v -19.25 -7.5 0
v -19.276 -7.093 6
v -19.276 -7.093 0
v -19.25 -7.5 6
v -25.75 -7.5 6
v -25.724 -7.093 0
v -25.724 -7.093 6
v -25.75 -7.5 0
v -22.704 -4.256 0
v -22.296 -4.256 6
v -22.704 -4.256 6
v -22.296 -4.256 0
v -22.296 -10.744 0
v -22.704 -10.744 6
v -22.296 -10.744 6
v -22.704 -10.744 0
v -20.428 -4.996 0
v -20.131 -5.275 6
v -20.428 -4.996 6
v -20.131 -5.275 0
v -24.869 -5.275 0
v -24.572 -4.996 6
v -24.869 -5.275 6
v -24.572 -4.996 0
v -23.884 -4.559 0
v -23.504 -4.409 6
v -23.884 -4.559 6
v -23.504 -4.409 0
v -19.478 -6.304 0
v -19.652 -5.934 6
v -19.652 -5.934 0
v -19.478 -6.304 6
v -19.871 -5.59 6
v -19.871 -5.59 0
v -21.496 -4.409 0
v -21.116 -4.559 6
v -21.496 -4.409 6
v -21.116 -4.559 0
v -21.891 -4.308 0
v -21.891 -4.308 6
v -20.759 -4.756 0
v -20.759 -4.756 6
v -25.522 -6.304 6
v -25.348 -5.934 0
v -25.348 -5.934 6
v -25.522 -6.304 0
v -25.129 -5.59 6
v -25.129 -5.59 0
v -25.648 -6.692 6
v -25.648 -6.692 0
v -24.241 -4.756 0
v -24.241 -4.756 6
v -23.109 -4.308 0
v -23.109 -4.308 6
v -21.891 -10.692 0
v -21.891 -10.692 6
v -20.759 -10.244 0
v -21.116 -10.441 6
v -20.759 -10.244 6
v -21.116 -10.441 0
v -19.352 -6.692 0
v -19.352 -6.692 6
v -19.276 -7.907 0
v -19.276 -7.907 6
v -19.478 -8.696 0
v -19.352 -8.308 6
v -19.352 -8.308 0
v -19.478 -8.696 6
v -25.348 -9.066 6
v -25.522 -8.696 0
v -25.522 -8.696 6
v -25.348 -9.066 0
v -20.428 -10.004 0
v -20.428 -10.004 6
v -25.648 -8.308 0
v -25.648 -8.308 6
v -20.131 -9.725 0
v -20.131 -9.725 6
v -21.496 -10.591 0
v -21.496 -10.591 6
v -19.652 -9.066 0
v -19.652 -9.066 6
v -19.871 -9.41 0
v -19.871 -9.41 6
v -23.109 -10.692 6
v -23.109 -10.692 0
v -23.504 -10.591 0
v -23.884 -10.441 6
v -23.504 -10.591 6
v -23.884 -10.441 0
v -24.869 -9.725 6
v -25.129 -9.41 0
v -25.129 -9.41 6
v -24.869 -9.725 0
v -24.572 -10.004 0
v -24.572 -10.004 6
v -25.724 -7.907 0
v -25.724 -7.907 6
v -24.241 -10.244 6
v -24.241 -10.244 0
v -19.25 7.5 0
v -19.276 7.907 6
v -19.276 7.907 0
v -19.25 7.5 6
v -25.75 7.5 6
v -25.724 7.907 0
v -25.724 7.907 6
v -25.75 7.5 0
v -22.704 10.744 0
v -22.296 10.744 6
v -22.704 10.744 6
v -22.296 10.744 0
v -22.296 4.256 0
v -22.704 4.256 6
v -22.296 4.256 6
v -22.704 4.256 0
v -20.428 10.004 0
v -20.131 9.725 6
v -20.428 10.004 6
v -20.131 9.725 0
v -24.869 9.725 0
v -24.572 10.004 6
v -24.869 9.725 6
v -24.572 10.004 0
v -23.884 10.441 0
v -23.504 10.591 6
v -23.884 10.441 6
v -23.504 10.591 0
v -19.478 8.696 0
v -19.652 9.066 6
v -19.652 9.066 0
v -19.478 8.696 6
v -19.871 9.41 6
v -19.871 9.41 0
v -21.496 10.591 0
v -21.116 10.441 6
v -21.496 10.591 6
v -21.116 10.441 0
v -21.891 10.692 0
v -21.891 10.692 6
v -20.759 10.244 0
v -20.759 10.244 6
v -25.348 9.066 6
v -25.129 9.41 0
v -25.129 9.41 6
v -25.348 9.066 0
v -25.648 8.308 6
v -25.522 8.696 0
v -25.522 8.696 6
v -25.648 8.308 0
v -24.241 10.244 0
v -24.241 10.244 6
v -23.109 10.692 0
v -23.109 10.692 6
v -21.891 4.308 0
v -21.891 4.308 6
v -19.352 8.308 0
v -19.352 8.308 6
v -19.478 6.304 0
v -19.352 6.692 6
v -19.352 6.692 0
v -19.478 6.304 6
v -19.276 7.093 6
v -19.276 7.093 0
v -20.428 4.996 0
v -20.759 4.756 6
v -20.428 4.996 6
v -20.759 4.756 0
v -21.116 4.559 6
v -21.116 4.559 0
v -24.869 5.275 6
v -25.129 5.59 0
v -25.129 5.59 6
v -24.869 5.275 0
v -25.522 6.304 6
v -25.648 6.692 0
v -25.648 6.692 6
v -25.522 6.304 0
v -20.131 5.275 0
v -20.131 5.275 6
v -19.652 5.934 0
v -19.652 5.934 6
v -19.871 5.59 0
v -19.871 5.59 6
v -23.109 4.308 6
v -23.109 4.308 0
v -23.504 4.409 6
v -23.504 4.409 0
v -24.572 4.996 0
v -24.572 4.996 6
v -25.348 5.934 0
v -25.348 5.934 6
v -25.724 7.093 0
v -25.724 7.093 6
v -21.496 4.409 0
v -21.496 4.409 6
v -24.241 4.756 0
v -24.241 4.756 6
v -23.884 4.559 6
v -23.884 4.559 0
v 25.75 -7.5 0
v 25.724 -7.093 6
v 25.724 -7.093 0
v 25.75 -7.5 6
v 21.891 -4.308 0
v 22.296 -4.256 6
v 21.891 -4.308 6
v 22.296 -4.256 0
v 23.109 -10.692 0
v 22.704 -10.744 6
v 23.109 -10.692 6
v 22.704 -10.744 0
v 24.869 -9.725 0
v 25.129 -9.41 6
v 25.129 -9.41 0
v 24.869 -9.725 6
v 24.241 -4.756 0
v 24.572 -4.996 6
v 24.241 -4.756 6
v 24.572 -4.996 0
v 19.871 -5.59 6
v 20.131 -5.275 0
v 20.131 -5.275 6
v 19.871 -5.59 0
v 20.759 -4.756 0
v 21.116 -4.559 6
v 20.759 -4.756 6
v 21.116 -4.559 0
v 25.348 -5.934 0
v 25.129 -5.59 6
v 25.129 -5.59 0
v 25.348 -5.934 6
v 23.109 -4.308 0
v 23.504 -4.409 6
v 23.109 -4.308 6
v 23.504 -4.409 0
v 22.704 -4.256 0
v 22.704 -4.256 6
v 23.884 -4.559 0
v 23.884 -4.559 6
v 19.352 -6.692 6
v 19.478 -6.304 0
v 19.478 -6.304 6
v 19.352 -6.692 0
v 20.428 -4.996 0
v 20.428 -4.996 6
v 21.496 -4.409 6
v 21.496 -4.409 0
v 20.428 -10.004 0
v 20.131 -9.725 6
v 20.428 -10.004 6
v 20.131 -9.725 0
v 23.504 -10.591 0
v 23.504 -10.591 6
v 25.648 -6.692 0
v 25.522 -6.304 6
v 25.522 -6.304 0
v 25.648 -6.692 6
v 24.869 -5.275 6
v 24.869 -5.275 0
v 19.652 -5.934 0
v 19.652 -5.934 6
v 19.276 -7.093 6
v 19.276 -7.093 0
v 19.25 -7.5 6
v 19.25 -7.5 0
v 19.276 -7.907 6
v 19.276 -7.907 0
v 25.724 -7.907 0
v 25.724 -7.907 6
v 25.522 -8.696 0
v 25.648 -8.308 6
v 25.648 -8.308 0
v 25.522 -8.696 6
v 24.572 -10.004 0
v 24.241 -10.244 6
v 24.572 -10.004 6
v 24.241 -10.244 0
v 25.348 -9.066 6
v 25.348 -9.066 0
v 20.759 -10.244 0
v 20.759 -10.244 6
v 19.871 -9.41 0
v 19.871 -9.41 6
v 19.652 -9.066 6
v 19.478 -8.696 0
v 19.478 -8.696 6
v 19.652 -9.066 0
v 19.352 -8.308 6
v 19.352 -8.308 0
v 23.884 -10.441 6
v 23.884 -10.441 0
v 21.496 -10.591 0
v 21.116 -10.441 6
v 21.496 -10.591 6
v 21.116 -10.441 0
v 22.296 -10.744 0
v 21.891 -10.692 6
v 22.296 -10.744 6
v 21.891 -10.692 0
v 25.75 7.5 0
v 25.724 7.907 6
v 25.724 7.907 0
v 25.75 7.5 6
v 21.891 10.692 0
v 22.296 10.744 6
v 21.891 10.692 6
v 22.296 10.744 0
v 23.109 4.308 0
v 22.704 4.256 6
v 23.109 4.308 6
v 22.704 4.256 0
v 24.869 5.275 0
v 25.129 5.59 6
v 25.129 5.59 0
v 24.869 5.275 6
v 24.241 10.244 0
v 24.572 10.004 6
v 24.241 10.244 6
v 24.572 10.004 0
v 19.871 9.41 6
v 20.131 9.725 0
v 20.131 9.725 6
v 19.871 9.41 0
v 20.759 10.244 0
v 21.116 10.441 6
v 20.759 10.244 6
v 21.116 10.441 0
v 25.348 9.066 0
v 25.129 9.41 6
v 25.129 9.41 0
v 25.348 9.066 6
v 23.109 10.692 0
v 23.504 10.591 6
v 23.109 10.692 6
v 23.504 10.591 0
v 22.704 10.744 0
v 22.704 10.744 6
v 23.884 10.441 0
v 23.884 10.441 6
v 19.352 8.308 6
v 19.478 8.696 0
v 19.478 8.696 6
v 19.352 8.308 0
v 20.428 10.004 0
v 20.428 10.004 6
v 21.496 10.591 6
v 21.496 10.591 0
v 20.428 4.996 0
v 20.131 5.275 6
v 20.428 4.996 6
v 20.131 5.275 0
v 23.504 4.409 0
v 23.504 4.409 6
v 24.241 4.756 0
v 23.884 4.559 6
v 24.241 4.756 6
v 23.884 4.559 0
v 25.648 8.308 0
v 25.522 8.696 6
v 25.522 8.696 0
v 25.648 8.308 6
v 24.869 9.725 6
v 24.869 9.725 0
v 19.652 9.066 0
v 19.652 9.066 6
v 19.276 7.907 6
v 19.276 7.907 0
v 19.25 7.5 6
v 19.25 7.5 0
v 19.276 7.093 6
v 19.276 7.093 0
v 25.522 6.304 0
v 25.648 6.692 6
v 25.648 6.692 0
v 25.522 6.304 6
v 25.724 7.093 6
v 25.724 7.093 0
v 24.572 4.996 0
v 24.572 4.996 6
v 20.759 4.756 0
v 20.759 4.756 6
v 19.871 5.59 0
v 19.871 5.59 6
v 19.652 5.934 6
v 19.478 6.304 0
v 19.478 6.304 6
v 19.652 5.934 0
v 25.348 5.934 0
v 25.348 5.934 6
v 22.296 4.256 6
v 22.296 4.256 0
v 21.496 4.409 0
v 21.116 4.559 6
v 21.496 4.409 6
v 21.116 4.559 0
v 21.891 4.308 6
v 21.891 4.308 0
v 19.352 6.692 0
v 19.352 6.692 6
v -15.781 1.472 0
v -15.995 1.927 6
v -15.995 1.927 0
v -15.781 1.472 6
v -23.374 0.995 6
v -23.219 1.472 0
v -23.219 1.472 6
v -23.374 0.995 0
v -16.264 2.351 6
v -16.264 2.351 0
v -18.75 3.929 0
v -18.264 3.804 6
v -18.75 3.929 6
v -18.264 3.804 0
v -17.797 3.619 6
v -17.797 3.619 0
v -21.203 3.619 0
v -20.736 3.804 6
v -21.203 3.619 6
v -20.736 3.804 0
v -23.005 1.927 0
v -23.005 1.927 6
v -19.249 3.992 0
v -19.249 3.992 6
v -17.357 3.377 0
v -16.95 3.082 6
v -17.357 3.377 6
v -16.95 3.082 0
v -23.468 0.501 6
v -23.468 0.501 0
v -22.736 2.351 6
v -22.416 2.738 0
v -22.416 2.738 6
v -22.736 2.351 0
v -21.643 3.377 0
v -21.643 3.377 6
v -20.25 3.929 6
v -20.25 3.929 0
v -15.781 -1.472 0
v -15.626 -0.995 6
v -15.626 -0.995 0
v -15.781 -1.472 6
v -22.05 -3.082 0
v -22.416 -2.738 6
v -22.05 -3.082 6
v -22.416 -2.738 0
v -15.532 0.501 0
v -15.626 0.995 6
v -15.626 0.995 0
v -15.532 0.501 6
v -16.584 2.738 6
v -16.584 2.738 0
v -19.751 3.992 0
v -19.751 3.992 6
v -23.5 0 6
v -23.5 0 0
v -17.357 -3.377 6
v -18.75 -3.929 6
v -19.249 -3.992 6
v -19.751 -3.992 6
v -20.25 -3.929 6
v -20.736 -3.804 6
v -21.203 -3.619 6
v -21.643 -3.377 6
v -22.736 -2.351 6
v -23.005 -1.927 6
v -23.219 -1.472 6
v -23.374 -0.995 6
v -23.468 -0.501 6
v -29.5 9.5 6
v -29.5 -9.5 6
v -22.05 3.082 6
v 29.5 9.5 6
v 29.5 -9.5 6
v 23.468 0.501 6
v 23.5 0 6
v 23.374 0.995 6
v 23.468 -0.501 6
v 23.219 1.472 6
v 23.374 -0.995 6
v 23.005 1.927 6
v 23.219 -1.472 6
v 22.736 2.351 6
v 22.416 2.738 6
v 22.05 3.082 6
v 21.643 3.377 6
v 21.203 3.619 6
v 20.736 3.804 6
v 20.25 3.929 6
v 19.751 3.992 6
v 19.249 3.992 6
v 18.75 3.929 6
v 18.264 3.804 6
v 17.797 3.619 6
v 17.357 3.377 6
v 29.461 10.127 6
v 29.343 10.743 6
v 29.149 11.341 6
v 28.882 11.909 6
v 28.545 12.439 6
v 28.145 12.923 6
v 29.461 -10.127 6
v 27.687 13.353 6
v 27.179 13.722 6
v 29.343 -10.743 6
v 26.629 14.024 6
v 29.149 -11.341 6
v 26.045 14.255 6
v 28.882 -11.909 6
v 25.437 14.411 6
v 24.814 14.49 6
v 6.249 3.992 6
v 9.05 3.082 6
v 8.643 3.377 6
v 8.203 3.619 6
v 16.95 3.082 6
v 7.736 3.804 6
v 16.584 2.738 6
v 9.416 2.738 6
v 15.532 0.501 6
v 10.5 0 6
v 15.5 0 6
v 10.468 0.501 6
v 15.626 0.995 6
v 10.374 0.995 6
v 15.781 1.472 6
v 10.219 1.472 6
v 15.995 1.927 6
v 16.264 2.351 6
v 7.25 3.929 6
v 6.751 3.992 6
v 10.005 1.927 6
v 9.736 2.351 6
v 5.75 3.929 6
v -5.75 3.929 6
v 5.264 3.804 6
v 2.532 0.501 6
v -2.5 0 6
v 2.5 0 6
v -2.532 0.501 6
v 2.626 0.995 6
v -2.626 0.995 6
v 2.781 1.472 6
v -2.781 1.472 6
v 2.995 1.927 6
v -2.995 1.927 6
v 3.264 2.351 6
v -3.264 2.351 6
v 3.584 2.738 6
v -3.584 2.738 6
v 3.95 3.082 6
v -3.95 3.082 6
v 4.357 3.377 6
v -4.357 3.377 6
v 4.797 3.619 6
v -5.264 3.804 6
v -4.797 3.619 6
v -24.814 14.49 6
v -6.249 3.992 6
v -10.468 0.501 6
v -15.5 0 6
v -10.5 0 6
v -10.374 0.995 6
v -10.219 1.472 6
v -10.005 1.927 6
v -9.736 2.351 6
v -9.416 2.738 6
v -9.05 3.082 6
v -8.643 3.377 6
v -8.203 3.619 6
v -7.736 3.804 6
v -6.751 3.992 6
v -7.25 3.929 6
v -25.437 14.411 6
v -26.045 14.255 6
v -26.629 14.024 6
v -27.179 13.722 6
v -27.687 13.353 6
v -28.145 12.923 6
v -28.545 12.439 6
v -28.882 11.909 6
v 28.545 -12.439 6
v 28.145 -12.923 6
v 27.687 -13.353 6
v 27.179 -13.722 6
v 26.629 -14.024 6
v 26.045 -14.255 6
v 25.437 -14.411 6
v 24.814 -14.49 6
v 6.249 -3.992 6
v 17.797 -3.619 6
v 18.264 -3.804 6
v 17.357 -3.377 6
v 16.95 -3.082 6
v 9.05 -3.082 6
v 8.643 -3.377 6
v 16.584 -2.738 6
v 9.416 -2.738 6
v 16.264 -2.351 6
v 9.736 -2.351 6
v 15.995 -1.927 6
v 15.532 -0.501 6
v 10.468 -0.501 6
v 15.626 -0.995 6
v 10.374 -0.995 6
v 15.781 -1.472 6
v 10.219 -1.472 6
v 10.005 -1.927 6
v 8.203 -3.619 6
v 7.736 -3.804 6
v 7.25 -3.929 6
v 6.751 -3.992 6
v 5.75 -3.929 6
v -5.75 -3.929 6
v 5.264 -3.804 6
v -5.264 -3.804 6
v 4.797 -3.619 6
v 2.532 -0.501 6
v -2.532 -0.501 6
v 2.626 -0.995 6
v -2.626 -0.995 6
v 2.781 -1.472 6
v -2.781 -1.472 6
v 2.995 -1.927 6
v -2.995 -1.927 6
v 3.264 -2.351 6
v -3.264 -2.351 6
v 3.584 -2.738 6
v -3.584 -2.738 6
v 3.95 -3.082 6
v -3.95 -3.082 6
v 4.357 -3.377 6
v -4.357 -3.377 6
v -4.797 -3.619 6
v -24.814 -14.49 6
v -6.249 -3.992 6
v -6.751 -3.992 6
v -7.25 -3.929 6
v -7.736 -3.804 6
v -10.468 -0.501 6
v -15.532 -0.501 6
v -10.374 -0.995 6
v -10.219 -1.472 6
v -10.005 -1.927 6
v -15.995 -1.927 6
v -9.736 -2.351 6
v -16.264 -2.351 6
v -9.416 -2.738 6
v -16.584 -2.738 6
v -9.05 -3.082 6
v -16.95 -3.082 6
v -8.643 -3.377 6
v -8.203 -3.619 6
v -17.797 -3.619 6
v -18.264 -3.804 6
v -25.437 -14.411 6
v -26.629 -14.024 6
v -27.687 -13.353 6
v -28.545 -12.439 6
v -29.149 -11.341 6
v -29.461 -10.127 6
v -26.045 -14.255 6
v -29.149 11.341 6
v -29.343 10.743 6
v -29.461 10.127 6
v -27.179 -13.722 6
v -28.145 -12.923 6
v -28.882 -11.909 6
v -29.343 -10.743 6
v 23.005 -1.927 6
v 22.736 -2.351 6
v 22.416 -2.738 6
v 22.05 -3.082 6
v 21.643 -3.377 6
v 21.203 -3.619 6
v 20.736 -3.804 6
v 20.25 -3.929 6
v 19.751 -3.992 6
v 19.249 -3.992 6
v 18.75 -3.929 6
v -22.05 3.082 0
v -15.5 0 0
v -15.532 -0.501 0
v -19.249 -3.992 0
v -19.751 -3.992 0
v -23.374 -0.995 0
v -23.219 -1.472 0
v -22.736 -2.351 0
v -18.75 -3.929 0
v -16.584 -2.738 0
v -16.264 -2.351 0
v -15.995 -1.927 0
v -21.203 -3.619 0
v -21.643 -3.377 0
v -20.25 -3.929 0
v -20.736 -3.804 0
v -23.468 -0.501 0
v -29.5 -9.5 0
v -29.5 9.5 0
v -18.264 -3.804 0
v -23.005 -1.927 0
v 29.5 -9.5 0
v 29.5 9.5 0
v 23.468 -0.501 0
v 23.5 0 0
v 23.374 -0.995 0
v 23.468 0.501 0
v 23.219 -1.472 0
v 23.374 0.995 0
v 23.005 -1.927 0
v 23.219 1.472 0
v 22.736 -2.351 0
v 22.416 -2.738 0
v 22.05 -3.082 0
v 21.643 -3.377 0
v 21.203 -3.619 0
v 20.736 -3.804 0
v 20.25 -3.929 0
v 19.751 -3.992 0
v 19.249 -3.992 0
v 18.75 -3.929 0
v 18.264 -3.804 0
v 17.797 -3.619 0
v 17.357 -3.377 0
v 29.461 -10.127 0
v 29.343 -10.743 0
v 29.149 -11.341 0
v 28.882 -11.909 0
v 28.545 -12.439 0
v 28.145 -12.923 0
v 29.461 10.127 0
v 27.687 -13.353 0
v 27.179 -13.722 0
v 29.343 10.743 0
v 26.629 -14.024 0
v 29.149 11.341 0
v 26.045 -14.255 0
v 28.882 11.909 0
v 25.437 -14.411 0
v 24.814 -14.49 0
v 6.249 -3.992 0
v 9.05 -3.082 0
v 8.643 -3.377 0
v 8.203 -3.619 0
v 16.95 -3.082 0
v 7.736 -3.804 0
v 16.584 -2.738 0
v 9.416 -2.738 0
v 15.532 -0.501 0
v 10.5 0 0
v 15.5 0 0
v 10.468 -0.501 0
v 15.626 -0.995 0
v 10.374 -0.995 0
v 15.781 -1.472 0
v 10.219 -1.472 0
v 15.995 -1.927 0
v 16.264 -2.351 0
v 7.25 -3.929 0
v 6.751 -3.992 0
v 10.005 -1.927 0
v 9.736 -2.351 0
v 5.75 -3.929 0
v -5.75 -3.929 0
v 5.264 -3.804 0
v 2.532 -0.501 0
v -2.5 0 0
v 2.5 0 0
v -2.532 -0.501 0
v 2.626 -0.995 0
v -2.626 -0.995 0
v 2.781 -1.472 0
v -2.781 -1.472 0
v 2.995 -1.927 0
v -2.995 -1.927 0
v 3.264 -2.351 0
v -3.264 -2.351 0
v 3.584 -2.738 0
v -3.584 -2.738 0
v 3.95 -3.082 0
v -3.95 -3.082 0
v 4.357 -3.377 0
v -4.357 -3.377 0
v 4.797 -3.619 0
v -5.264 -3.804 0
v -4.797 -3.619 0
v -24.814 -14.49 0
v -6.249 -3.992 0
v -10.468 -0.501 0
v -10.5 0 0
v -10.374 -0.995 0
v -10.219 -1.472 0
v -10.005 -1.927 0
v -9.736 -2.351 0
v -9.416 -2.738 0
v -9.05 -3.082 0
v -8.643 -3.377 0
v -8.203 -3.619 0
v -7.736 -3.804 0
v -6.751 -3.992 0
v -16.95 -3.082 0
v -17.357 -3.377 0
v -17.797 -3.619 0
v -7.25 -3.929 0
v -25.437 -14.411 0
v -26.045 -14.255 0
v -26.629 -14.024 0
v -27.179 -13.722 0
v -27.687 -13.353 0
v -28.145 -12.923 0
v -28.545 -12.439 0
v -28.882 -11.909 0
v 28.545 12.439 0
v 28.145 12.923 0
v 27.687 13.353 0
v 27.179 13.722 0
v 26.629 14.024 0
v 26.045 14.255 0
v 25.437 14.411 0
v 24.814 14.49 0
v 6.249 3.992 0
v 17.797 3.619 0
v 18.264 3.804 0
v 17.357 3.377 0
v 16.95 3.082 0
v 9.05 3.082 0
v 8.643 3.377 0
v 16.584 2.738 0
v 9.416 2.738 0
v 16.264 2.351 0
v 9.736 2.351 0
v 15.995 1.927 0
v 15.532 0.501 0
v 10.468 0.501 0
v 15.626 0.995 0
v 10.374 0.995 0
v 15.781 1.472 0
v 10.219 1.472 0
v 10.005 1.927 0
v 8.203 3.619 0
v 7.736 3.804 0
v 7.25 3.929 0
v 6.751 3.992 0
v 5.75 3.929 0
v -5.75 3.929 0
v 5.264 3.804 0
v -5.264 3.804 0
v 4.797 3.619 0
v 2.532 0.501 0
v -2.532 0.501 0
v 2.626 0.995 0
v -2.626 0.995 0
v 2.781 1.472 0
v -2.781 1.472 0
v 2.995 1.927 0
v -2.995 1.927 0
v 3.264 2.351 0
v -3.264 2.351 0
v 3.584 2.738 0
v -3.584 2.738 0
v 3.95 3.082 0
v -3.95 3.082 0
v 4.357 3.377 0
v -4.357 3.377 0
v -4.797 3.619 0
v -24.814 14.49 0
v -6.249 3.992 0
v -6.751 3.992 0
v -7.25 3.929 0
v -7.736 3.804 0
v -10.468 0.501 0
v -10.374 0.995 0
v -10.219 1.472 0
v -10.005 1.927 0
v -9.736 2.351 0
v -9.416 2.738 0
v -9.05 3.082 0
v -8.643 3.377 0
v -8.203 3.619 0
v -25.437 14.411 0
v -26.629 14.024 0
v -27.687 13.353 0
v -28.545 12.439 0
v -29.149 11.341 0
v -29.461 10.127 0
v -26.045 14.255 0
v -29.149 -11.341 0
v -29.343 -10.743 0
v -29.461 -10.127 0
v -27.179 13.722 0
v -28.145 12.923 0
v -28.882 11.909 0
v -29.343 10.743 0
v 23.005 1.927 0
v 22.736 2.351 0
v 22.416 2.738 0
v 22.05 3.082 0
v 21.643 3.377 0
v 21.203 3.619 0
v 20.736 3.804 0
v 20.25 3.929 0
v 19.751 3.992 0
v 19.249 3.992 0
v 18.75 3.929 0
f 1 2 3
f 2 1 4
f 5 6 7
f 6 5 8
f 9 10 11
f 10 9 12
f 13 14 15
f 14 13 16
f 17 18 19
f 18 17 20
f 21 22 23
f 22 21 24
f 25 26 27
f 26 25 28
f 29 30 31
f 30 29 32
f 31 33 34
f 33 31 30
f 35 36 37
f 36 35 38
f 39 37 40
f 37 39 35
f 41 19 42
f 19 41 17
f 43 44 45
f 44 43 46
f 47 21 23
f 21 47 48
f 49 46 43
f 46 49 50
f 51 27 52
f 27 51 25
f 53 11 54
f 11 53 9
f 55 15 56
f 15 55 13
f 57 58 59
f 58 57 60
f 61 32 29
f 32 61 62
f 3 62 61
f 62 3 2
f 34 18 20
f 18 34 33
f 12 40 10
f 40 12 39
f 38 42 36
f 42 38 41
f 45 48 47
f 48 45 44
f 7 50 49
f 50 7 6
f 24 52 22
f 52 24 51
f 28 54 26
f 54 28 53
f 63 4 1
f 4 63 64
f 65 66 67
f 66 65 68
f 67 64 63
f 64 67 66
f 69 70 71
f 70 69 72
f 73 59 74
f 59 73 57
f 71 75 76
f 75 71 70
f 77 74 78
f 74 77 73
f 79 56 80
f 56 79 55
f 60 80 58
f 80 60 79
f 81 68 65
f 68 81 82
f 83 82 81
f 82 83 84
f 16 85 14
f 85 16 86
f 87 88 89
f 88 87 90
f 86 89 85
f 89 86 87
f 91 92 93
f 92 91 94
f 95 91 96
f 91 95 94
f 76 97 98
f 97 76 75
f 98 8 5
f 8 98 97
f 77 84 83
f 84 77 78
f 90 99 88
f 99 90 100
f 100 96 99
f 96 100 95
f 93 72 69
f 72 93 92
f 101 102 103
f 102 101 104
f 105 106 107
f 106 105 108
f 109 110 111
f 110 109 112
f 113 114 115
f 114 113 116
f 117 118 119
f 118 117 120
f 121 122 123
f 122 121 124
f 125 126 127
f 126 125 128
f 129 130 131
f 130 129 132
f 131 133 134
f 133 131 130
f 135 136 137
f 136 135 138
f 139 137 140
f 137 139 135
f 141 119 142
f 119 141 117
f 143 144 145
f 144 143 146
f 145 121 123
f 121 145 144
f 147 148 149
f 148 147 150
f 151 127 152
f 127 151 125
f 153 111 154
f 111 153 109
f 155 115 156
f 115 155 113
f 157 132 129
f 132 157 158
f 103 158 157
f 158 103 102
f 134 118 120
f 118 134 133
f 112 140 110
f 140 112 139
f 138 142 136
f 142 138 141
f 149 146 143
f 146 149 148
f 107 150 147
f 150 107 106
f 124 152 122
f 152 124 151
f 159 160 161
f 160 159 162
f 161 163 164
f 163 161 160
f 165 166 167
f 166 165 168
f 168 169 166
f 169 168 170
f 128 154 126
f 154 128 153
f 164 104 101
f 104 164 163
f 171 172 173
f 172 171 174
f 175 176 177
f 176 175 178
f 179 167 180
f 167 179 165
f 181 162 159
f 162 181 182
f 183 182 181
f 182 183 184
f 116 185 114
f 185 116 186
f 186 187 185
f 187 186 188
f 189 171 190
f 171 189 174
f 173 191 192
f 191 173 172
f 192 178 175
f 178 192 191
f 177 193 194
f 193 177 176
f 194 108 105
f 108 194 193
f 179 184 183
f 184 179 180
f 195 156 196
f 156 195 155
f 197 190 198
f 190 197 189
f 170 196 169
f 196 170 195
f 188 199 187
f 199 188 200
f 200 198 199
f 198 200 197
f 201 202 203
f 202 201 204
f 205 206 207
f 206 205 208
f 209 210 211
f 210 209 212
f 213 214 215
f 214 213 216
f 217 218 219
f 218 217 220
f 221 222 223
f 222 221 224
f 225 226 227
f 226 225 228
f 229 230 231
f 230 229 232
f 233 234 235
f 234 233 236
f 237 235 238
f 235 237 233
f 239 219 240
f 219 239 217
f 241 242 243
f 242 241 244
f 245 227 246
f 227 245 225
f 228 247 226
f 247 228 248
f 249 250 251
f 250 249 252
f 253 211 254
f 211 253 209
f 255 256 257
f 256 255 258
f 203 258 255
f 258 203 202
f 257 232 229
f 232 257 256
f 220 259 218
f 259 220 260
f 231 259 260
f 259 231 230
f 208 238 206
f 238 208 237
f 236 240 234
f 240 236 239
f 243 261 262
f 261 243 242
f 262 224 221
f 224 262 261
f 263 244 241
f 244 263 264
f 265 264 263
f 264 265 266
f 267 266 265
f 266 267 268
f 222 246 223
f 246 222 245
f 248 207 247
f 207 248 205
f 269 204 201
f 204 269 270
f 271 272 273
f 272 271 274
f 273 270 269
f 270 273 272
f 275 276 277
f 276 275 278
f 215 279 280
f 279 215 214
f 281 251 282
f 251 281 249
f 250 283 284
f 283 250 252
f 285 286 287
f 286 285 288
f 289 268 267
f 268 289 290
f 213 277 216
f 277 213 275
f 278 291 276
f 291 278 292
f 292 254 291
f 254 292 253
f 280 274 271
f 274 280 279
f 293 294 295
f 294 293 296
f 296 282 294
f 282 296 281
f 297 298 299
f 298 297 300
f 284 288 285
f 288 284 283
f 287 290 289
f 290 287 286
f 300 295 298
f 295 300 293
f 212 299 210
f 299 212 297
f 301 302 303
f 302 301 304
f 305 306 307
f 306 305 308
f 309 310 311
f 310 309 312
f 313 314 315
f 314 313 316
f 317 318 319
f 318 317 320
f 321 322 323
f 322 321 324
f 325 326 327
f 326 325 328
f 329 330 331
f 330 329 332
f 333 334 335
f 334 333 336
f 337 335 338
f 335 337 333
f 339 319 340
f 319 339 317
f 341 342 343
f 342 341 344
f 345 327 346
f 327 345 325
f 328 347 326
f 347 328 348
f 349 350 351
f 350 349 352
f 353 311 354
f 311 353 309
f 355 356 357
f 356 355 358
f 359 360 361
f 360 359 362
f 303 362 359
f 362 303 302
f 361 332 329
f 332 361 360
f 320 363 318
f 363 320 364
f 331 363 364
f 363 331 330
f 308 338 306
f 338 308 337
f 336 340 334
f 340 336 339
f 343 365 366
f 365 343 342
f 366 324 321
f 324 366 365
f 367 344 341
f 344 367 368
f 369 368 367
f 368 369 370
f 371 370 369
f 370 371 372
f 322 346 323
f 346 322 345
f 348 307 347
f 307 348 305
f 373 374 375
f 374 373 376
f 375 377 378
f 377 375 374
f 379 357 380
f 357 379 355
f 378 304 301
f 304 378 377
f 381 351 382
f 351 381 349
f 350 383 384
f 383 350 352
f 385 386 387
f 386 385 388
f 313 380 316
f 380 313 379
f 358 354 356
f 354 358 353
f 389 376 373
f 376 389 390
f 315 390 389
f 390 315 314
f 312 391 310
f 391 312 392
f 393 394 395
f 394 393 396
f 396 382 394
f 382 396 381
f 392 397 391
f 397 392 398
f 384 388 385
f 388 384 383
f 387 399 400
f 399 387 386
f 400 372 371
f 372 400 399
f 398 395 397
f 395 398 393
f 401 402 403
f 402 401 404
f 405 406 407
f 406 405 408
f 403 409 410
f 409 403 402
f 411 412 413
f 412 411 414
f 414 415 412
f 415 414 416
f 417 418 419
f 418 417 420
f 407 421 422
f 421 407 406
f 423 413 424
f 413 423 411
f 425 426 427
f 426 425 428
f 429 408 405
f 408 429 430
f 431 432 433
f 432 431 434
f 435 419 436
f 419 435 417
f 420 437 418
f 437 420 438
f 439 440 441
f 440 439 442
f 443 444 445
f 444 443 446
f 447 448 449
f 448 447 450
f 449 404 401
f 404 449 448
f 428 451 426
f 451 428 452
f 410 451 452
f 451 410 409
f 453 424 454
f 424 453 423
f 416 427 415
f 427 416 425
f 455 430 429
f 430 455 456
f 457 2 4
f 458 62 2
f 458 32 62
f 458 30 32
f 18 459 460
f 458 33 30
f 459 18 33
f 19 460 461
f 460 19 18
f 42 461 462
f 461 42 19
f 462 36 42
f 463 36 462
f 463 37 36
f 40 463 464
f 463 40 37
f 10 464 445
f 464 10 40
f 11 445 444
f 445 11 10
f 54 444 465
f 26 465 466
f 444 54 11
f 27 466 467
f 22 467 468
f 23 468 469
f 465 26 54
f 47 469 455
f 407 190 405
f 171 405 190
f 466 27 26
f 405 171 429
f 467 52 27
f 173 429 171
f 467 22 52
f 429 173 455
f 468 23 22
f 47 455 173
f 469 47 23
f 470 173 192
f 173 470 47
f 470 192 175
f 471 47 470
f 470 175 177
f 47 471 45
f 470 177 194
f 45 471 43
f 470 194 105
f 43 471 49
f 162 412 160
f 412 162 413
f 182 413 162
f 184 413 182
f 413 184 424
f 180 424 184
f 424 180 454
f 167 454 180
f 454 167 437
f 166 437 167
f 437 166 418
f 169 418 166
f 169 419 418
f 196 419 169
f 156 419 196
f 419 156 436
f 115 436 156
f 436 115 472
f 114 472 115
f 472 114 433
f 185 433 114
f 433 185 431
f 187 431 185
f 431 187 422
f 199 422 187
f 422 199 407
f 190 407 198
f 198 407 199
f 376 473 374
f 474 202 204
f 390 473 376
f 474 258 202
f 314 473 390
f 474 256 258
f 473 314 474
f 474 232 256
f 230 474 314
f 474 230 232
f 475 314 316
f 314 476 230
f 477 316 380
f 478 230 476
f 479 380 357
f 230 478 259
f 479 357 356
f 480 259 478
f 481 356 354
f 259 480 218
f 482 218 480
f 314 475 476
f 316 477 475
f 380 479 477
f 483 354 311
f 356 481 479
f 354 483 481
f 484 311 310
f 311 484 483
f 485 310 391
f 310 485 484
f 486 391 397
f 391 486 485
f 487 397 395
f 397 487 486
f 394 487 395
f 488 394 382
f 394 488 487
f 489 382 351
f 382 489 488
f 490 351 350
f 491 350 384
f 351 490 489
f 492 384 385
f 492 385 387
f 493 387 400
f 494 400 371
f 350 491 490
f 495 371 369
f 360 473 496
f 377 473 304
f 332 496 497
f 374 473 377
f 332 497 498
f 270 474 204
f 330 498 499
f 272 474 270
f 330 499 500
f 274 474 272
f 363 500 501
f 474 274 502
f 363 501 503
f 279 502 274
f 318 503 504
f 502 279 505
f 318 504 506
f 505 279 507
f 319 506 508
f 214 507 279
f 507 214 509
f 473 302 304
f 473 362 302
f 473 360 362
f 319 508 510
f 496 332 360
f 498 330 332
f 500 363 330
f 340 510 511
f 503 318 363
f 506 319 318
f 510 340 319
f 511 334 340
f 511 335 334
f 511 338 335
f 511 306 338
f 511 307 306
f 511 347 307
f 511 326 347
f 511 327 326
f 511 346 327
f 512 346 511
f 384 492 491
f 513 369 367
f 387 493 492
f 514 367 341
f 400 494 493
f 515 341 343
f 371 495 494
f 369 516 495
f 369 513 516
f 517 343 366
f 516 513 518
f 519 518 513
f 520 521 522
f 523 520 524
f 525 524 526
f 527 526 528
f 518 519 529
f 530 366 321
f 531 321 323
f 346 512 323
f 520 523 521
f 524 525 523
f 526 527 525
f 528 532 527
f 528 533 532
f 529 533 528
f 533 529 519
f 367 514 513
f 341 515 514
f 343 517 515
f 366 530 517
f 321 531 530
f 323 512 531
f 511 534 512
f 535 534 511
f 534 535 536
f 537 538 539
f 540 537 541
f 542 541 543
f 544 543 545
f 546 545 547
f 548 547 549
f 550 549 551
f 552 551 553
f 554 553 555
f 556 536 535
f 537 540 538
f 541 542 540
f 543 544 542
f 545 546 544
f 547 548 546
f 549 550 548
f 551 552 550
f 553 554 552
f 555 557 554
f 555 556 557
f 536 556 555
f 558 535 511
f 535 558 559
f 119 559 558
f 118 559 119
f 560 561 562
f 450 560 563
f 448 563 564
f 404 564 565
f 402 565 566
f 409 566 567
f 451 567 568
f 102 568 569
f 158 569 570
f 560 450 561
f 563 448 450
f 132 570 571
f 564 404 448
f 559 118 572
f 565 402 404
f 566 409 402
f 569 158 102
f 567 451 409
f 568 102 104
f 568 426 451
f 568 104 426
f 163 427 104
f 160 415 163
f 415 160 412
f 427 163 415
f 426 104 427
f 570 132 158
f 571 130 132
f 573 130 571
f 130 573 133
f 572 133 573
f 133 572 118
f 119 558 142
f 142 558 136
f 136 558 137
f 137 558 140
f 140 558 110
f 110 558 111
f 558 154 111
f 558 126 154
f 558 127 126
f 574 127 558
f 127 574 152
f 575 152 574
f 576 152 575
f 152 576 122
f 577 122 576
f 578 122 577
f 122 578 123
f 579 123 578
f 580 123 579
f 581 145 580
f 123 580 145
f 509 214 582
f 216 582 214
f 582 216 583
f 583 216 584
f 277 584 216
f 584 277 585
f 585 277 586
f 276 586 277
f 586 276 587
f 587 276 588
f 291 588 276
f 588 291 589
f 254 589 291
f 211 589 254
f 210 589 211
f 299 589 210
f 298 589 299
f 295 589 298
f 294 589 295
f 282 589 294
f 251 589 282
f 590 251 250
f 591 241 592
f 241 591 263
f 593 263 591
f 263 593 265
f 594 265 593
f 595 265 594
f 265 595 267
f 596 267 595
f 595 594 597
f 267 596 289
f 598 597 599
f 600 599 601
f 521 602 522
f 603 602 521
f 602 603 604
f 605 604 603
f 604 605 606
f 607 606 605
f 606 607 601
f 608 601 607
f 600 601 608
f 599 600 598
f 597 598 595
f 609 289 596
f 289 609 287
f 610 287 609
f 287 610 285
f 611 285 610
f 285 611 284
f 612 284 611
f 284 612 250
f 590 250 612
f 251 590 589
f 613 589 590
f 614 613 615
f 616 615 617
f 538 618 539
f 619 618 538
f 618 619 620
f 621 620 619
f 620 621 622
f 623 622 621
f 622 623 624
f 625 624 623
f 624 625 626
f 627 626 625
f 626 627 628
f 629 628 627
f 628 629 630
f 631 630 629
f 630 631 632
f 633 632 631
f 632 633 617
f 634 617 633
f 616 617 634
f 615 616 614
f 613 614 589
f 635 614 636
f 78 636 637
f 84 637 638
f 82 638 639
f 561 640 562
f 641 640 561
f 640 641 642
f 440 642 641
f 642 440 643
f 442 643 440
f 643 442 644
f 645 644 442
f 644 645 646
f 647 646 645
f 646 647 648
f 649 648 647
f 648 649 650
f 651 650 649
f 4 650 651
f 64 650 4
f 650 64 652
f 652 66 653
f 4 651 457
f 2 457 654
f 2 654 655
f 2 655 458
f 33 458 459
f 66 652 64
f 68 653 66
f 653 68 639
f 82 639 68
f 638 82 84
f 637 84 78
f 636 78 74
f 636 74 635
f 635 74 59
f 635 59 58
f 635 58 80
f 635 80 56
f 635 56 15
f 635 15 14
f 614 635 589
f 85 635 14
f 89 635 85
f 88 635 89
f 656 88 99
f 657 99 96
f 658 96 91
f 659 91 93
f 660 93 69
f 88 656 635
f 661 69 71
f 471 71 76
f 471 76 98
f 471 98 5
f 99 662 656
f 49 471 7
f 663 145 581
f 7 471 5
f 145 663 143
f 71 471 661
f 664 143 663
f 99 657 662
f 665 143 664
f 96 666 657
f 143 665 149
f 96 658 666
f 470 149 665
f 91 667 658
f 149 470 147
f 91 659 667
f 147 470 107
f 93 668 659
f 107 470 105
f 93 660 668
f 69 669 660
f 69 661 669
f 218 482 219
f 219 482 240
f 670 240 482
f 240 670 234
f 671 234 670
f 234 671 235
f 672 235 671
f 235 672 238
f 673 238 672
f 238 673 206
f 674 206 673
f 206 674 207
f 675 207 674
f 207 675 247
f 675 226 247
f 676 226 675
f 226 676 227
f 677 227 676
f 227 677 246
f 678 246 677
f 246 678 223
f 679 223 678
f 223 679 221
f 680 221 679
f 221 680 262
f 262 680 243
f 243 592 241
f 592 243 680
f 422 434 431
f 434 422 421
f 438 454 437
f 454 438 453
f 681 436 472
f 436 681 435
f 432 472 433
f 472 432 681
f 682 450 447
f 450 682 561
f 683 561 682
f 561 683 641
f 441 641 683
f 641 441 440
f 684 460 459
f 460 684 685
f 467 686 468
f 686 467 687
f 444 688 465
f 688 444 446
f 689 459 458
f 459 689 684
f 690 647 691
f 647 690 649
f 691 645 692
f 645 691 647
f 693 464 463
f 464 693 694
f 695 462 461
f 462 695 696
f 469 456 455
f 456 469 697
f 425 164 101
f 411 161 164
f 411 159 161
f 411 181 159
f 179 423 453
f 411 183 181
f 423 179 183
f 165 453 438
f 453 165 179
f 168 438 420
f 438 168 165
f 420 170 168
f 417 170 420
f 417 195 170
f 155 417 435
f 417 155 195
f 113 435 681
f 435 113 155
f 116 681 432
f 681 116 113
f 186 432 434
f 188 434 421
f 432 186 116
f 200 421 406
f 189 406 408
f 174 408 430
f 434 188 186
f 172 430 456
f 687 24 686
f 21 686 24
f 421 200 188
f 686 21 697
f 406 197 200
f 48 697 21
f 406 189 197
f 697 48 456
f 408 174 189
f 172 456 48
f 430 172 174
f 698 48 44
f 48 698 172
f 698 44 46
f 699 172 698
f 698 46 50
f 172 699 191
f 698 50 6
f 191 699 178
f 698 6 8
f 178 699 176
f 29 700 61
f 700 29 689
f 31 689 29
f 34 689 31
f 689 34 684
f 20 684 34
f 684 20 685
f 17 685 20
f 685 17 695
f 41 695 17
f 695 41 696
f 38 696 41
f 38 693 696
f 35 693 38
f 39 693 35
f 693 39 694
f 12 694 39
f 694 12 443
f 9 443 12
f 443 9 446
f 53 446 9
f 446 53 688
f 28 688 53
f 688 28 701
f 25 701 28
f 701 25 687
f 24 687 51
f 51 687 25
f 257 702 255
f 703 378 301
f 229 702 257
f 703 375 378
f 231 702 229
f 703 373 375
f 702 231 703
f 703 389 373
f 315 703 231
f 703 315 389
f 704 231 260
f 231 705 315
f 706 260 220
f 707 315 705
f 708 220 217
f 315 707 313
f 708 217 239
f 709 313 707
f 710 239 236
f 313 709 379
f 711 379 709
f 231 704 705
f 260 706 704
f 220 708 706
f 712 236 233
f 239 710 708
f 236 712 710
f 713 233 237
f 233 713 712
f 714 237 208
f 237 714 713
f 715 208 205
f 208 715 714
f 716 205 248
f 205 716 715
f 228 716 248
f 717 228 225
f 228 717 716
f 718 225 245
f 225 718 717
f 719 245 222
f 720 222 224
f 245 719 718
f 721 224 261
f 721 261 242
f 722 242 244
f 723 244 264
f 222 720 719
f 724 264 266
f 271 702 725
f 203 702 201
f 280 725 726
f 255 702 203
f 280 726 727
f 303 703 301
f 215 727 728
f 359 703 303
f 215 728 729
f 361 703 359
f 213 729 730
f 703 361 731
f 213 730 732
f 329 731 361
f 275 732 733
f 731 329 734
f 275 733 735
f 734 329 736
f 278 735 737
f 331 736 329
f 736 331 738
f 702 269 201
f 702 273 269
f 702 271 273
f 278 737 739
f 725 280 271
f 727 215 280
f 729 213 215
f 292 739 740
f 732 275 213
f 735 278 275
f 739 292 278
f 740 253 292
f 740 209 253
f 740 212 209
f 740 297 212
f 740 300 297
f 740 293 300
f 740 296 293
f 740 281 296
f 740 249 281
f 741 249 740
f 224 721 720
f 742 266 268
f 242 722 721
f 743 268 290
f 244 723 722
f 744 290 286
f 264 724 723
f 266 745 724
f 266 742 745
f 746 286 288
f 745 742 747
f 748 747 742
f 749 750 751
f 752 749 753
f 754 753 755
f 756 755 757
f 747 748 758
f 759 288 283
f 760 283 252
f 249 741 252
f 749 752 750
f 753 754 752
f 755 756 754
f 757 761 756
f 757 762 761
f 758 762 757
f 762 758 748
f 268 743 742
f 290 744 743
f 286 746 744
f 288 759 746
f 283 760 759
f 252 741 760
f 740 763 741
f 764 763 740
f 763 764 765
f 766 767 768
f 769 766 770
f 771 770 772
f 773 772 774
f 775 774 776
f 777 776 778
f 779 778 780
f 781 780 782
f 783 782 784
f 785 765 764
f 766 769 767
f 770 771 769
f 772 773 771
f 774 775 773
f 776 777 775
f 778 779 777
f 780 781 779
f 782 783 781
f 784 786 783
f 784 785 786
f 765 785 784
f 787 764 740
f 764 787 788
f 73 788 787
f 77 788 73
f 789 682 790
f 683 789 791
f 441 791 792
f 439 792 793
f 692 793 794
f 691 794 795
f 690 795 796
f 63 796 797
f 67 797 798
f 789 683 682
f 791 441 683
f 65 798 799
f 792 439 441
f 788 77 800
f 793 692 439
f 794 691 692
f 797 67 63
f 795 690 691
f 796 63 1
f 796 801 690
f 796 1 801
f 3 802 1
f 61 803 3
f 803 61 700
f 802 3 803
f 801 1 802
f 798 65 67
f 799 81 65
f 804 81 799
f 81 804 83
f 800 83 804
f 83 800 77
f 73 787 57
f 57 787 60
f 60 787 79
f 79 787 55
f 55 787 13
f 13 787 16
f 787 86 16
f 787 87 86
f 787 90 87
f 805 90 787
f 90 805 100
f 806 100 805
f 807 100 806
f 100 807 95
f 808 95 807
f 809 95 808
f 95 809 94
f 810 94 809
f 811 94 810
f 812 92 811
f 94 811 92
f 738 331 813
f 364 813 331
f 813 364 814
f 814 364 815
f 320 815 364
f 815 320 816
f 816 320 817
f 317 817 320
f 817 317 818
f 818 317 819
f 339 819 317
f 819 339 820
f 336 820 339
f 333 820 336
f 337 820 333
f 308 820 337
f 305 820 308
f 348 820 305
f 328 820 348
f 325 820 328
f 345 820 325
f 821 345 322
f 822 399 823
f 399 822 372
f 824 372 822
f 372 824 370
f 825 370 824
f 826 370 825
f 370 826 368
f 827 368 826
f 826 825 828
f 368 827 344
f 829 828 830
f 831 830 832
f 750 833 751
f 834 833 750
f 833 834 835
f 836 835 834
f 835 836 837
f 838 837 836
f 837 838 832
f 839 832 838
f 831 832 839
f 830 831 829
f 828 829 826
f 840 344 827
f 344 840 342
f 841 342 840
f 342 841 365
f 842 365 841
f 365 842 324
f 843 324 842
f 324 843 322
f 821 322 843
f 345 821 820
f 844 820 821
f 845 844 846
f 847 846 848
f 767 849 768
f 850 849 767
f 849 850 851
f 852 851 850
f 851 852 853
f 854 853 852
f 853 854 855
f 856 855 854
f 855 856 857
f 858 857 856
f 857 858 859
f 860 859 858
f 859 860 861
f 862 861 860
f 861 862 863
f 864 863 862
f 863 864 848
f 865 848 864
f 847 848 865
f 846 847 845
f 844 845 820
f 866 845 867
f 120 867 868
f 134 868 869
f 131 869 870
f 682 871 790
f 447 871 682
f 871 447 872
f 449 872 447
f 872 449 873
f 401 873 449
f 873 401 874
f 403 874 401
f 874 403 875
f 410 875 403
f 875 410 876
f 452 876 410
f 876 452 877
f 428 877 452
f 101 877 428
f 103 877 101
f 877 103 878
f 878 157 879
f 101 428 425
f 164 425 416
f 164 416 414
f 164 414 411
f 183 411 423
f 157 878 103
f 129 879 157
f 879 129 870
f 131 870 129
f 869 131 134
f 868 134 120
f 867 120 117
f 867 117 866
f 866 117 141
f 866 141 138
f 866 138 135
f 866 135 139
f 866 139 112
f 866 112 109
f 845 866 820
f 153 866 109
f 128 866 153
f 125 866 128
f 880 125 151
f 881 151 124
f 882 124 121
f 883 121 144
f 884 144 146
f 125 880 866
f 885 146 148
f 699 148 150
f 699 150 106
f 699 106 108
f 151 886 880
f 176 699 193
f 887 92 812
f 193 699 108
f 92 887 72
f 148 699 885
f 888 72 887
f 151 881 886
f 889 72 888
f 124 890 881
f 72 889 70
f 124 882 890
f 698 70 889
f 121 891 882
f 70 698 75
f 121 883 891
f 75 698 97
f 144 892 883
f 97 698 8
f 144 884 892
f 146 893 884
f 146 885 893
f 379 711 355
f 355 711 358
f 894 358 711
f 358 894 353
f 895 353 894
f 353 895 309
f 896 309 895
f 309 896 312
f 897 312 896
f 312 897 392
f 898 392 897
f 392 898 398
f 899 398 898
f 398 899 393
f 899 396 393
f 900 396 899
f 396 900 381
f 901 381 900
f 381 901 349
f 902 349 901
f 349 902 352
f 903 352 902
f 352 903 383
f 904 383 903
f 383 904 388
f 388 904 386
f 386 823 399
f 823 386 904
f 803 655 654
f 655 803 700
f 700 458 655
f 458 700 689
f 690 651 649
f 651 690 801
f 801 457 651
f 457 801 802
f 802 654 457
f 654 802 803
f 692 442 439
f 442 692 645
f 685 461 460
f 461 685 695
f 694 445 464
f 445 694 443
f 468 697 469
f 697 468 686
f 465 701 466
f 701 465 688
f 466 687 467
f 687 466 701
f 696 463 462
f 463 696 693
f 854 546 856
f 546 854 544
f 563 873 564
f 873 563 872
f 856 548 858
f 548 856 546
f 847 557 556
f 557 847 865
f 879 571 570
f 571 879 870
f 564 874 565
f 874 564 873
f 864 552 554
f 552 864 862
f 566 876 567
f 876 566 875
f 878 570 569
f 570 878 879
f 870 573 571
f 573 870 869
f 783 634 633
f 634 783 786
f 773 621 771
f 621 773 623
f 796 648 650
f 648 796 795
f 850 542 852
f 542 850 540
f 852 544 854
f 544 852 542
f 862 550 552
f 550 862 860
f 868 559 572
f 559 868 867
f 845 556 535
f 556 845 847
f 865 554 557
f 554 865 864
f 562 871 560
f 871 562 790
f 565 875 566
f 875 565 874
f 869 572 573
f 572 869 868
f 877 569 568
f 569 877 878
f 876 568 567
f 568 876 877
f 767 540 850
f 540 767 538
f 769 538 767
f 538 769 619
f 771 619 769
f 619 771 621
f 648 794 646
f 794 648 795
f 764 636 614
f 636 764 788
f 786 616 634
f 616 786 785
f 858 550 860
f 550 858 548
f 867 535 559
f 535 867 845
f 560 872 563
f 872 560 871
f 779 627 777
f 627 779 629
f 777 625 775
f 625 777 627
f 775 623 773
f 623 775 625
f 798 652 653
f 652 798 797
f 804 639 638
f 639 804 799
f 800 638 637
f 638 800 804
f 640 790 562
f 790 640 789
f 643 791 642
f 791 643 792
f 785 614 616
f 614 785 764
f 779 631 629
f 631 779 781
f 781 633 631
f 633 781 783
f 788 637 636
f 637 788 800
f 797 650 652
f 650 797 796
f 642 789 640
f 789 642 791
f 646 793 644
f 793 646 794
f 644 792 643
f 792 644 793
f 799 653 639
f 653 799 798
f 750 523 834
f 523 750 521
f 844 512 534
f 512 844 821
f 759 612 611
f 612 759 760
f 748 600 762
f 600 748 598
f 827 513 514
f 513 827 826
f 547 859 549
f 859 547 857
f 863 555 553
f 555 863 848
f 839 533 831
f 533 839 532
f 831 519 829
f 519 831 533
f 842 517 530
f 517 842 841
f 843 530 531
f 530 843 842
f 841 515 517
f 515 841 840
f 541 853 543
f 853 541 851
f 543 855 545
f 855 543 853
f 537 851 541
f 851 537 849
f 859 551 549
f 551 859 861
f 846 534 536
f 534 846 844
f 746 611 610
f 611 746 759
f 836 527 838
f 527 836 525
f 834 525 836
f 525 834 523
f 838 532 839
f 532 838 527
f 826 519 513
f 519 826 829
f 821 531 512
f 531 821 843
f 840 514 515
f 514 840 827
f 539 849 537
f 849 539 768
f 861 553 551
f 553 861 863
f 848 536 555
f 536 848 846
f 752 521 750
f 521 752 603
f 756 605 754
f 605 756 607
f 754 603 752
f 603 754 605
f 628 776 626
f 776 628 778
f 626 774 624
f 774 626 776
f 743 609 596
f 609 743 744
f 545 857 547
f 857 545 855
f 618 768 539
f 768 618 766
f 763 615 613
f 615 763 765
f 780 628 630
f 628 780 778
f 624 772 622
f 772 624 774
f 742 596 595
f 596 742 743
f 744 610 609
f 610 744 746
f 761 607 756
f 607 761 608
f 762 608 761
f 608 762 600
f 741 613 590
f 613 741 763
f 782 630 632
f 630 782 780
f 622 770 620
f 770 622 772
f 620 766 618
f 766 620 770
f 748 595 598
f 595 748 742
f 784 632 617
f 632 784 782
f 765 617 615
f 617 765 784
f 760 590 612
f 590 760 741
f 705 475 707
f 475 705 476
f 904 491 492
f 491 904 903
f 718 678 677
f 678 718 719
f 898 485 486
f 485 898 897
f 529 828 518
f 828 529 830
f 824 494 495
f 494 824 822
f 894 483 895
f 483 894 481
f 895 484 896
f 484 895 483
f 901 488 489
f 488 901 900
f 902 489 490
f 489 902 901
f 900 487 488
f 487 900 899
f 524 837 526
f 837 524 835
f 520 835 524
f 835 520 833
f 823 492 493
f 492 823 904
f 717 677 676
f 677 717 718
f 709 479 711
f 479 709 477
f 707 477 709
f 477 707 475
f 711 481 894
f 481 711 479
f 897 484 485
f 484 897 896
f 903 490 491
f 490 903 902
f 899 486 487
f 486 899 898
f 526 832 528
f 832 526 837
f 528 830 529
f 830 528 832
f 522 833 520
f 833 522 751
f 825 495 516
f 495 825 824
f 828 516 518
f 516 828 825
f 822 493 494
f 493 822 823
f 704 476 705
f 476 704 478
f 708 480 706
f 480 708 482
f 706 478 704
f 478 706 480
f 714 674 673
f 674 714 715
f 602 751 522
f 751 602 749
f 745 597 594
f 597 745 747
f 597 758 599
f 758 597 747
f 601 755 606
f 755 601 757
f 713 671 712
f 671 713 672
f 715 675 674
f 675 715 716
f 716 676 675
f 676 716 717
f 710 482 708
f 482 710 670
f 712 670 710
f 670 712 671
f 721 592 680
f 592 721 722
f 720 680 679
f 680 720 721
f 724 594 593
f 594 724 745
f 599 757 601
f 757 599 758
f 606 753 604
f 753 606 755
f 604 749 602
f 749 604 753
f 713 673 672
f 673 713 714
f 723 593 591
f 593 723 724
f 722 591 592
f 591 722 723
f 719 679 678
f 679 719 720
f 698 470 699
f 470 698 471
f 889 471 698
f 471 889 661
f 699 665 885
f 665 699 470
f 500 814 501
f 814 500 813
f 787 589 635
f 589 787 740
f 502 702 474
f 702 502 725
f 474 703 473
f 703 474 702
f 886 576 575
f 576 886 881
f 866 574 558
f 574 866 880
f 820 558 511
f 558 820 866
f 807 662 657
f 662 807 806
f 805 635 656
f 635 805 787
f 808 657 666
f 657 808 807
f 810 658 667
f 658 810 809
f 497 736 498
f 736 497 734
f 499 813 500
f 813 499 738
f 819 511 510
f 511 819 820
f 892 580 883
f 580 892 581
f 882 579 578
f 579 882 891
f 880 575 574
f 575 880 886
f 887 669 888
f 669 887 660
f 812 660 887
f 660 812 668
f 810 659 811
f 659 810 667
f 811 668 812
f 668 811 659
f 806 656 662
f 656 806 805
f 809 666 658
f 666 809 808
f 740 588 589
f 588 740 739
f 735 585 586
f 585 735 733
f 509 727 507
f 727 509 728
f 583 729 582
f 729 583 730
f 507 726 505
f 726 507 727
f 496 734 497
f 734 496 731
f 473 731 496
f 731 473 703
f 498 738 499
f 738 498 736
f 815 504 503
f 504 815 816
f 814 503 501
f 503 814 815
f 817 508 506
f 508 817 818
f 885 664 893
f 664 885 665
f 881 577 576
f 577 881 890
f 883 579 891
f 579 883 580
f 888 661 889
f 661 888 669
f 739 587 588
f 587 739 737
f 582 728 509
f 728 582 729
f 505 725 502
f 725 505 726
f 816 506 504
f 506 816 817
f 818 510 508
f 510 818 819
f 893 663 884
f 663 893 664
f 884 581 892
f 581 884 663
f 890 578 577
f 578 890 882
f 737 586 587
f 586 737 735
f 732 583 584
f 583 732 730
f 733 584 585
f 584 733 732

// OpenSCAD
$fn = 50;


difference() {
	union() {
		hull() {
			translate(v = [-24.5000000000, 9.5000000000, 0]) {
				cylinder(h = 6, r = 5);
			}
			translate(v = [24.5000000000, 9.5000000000, 0]) {
				cylinder(h = 6, r = 5);
			}
			translate(v = [-24.5000000000, -9.5000000000, 0]) {
				cylinder(h = 6, r = 5);
			}
			translate(v = [24.5000000000, -9.5000000000, 0]) {
				cylinder(h = 6, r = 5);
			}
		}
	}
	union() {
		#translate(v = [-22.5000000000, -7.5000000000, -100.0000000000]) {
			cylinder(h = 200, r = 3.2500000000);
		}
		#translate(v = [-22.5000000000, 7.5000000000, -100.0000000000]) {
			cylinder(h = 200, r = 3.2500000000);
		}
		#translate(v = [22.5000000000, -7.5000000000, -100.0000000000]) {
			cylinder(h = 200, r = 3.2500000000);
		}
		#translate(v = [22.5000000000, 7.5000000000, -100.0000000000]) {
			cylinder(h = 200, r = 3.2500000000);
		}
		#translate(v = [-19.5000000000, 0, 0]) {
			cylinder(h = 6, r = 4.0000000000);
		}
		#translate(v = [-6.5000000000, 0, 0]) {
			cylinder(h = 6, r = 4.0000000000);
		}
		#translate(v = [6.5000000000, 0, 0]) {
			cylinder(h = 6, r = 4.0000000000);
		}
		#translate(v = [19.5000000000, 0, 0]) {
			cylinder(h = 6, r = 4.0000000000);
		}
	}
}
